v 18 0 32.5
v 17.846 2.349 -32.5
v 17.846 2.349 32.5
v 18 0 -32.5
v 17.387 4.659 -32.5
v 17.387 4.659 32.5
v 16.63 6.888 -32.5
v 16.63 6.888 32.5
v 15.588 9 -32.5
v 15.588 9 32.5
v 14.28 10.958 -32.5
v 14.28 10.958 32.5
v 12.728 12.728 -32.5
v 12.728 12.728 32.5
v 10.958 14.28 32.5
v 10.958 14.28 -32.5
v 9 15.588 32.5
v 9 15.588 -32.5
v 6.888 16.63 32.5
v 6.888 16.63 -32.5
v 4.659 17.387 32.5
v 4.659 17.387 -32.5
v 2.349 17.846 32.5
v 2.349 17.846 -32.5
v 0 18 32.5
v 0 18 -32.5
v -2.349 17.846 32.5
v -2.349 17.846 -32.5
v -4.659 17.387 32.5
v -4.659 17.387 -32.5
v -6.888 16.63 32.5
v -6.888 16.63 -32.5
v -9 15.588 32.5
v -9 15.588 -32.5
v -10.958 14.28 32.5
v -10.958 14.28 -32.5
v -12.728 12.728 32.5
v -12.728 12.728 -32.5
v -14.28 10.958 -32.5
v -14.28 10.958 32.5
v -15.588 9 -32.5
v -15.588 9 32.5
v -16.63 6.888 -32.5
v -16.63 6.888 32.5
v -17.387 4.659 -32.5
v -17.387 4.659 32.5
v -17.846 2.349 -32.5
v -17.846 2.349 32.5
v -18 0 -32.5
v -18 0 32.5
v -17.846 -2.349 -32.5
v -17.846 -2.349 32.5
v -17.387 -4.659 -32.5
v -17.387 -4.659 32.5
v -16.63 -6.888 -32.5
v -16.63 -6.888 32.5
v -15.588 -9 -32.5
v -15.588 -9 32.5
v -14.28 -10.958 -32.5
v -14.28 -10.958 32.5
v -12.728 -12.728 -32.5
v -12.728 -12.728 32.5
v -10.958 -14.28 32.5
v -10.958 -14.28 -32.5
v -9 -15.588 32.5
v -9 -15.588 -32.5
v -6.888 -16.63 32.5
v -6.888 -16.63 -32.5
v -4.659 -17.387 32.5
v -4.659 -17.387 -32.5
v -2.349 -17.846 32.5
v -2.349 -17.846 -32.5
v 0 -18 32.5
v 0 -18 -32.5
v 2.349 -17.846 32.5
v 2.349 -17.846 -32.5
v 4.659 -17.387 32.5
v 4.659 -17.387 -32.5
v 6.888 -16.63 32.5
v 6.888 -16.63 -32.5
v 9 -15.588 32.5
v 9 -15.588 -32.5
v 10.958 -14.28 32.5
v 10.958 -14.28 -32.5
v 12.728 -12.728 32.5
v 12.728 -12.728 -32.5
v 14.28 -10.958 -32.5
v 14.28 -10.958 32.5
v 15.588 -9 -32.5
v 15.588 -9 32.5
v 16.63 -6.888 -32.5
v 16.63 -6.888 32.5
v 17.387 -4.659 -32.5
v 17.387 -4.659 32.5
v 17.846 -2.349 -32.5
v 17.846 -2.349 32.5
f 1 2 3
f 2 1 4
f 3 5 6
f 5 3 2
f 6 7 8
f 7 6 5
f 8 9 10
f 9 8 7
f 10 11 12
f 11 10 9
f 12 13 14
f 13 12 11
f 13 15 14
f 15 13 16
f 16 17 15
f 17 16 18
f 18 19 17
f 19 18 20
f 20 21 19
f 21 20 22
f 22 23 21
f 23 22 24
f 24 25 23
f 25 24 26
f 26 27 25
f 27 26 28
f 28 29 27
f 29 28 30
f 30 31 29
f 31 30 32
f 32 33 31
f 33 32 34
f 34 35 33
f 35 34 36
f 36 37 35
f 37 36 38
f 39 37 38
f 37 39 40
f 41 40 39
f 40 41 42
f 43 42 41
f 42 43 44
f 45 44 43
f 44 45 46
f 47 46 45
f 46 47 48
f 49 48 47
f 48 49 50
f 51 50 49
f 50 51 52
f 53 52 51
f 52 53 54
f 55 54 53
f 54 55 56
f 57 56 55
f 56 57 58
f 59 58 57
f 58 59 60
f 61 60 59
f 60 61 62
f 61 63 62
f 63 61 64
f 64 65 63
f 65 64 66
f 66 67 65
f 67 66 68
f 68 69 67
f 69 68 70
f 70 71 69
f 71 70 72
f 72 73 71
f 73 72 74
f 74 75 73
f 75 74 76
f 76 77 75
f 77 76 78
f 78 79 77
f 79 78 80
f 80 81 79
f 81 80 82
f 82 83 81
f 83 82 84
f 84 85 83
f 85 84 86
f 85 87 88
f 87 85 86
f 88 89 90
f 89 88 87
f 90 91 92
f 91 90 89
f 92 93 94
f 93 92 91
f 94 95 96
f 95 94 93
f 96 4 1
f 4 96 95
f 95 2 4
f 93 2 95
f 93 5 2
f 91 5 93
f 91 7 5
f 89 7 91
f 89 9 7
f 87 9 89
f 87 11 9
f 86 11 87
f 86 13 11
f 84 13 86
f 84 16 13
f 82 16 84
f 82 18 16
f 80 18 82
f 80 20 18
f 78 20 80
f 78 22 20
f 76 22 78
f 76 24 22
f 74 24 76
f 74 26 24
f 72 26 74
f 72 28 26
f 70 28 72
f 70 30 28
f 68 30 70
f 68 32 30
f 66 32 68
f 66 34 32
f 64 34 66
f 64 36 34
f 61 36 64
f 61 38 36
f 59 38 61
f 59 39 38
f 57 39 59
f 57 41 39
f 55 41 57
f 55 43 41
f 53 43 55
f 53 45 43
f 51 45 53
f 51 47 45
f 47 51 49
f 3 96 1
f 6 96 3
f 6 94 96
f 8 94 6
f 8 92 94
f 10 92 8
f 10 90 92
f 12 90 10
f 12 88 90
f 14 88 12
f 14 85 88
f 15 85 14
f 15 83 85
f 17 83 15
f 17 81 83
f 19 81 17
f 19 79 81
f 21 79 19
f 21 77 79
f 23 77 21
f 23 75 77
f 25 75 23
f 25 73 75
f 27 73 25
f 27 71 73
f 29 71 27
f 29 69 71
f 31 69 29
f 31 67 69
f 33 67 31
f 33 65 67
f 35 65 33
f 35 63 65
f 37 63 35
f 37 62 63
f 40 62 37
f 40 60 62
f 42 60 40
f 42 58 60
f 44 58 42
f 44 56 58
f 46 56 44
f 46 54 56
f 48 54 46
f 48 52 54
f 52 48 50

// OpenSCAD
// ========================================
// a cylinder with radius 1.8 cm and height 6.5 cm
// NeuroCAD canonical IR; dimensions are millimetres
// ========================================
$fn = 48;

cylinder(r=18, h=65, center=true);
